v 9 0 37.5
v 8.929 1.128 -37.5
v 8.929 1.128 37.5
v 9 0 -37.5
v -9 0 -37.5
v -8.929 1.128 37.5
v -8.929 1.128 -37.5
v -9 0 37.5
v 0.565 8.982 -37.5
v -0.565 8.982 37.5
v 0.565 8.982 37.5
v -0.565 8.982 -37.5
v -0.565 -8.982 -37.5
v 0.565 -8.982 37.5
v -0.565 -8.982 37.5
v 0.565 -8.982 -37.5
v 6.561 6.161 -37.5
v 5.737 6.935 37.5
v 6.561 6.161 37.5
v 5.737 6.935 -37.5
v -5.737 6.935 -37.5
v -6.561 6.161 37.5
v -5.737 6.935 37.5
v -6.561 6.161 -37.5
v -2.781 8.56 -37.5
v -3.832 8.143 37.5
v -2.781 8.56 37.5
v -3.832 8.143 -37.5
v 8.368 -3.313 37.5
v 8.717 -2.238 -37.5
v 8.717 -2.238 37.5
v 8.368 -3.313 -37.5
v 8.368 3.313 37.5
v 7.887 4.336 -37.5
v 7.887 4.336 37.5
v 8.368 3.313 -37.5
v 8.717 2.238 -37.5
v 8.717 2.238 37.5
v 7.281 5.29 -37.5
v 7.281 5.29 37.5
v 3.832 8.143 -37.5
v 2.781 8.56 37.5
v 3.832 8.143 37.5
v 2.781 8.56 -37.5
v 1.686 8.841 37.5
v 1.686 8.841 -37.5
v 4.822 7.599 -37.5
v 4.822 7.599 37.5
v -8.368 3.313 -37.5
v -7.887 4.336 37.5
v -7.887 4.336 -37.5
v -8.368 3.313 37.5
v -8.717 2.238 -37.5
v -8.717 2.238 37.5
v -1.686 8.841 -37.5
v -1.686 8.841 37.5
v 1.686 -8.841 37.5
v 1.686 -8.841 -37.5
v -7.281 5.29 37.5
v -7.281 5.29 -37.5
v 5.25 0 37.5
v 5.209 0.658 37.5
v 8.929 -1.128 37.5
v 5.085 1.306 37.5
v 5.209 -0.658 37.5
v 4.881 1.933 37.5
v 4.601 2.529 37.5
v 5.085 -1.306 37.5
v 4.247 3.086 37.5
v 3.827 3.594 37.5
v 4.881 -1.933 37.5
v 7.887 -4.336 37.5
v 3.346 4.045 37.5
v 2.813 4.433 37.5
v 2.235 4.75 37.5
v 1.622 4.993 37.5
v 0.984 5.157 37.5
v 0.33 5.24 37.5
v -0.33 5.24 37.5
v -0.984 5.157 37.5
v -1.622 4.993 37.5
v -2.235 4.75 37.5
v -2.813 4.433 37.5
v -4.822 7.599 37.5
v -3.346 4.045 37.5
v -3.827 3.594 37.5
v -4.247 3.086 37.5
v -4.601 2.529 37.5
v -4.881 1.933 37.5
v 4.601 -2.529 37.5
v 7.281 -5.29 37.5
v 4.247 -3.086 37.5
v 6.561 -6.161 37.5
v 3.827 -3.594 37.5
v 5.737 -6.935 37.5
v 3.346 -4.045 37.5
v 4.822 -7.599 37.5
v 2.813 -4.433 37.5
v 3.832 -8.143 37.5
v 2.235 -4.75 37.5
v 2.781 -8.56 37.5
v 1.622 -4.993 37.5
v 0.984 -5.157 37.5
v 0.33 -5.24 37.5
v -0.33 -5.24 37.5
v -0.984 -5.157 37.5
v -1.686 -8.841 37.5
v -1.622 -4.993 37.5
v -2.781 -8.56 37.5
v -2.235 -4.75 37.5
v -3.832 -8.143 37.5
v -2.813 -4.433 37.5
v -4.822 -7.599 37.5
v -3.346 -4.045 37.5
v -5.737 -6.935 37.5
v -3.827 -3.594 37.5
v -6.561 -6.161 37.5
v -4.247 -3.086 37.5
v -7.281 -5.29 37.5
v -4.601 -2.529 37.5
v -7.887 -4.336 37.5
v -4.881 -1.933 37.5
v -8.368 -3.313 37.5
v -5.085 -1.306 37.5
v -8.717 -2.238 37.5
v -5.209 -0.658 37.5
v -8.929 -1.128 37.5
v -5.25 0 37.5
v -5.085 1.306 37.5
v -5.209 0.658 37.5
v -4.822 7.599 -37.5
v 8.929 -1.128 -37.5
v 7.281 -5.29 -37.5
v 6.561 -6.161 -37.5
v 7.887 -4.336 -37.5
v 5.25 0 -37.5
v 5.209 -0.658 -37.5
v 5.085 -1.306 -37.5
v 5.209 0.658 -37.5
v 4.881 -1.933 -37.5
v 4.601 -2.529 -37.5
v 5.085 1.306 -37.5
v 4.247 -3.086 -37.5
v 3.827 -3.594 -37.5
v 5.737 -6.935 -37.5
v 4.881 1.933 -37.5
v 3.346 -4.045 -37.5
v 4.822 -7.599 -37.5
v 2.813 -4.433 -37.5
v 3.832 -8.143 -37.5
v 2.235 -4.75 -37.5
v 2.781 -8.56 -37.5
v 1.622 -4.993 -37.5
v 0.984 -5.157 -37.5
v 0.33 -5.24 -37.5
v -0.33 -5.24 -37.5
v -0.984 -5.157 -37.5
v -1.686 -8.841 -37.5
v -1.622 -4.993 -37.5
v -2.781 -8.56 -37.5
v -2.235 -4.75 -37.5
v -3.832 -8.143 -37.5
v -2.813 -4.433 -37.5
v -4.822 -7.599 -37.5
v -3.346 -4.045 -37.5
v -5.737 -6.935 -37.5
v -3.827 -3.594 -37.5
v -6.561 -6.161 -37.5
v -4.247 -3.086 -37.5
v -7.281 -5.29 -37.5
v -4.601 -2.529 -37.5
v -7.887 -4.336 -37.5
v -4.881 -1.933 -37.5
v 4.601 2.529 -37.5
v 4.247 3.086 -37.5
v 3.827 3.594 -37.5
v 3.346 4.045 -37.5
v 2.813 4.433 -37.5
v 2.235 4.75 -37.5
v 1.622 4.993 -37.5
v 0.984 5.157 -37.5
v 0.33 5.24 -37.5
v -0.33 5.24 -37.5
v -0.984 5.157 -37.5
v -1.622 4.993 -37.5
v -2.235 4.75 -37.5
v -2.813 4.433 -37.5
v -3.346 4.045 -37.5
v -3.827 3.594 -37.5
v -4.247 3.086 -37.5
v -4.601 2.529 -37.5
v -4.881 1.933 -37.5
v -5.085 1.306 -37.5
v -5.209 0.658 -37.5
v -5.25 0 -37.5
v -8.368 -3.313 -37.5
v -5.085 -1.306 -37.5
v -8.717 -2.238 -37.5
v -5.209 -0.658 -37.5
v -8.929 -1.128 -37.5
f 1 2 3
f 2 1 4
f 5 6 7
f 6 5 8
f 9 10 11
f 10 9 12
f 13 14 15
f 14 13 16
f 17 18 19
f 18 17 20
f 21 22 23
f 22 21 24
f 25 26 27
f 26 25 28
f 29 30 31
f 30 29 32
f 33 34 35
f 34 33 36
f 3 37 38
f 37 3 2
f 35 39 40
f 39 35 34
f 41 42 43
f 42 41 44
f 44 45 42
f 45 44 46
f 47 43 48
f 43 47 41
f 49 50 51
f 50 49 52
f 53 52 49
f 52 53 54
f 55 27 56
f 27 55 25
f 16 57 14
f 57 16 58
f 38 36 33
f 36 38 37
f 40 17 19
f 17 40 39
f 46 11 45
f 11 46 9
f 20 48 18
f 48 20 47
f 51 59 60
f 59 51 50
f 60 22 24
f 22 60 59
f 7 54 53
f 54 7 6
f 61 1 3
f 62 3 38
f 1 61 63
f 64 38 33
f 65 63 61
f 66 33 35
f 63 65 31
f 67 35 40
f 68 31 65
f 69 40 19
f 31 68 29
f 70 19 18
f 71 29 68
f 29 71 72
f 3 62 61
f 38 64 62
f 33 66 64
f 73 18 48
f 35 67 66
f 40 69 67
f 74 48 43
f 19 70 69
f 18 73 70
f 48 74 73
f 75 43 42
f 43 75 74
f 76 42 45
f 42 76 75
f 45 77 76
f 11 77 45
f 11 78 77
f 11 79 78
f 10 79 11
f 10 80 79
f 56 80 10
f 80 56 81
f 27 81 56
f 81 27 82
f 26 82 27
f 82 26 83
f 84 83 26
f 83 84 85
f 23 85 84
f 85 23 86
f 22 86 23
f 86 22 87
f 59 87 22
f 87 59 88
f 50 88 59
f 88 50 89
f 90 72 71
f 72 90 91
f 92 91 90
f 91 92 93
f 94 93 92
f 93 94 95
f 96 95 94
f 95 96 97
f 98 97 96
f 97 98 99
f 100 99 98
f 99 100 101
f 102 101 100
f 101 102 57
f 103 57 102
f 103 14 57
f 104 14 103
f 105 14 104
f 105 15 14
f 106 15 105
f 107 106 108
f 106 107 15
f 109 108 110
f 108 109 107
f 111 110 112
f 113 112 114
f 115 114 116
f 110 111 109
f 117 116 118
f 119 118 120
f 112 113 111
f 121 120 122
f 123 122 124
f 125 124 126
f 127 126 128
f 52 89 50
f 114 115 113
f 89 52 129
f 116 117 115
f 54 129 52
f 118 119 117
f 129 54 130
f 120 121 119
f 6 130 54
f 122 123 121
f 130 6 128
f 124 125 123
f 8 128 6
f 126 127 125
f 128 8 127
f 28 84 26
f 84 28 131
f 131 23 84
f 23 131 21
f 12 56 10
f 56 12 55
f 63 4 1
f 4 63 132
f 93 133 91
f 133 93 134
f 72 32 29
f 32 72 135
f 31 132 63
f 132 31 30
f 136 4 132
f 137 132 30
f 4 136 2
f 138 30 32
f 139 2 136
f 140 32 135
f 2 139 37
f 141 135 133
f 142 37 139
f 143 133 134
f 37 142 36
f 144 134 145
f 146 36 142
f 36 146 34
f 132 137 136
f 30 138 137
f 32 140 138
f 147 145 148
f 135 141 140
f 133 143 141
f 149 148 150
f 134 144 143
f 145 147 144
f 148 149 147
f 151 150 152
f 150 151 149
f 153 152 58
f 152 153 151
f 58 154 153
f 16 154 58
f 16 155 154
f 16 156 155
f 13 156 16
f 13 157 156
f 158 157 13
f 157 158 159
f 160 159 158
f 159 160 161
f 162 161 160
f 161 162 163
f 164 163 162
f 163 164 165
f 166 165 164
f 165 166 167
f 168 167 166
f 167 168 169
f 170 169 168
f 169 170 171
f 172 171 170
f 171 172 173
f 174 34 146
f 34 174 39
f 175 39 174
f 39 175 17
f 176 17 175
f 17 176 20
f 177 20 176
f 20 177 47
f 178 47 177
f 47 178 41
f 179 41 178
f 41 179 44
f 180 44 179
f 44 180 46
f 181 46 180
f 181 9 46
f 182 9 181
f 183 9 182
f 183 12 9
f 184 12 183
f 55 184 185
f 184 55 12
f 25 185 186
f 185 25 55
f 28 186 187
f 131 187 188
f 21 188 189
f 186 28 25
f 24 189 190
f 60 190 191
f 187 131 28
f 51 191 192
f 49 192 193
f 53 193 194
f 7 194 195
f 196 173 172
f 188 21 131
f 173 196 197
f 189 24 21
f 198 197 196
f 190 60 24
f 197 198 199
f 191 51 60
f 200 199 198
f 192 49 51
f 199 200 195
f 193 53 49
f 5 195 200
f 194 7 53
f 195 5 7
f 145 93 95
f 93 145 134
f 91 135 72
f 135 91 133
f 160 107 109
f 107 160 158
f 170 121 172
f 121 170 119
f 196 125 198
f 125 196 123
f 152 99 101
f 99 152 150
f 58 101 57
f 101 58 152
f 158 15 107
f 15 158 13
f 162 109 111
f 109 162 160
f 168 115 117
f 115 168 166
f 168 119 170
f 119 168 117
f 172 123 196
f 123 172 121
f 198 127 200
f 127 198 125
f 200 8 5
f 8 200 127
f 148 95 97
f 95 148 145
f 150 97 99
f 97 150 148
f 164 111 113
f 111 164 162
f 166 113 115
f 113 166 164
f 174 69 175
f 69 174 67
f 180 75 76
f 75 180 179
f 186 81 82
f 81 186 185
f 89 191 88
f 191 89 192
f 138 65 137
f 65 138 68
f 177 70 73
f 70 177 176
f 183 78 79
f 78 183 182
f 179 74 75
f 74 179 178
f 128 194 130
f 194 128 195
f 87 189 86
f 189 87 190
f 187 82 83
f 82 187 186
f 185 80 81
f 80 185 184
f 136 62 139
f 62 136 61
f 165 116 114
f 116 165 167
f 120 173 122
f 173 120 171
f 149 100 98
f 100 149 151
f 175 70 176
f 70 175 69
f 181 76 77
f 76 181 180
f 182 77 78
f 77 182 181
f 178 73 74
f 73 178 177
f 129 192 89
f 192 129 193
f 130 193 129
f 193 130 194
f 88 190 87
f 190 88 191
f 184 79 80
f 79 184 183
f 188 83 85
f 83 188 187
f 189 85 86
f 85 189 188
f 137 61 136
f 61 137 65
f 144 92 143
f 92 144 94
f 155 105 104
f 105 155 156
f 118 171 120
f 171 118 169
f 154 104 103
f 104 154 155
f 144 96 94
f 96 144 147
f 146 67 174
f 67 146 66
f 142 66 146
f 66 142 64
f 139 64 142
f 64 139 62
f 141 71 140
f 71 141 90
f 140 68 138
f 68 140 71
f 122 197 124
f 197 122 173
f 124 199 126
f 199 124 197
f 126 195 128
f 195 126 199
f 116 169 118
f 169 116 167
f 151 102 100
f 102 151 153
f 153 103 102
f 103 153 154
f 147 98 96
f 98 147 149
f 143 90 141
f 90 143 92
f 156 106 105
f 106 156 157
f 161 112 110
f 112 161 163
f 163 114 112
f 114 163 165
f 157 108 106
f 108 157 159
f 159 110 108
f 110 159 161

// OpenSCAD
$fn = 50;


difference() {
	union() {
		translate(v = [0, 0, -37.5000000000]) {
			cylinder(h = 75, r = 9.0000000000);
		}
	}
	union() {
		translate(v = [0, 0, -100.0000000000]) {
			cylinder(h = 200, r = 5.2500000000);
		}
	}
}
